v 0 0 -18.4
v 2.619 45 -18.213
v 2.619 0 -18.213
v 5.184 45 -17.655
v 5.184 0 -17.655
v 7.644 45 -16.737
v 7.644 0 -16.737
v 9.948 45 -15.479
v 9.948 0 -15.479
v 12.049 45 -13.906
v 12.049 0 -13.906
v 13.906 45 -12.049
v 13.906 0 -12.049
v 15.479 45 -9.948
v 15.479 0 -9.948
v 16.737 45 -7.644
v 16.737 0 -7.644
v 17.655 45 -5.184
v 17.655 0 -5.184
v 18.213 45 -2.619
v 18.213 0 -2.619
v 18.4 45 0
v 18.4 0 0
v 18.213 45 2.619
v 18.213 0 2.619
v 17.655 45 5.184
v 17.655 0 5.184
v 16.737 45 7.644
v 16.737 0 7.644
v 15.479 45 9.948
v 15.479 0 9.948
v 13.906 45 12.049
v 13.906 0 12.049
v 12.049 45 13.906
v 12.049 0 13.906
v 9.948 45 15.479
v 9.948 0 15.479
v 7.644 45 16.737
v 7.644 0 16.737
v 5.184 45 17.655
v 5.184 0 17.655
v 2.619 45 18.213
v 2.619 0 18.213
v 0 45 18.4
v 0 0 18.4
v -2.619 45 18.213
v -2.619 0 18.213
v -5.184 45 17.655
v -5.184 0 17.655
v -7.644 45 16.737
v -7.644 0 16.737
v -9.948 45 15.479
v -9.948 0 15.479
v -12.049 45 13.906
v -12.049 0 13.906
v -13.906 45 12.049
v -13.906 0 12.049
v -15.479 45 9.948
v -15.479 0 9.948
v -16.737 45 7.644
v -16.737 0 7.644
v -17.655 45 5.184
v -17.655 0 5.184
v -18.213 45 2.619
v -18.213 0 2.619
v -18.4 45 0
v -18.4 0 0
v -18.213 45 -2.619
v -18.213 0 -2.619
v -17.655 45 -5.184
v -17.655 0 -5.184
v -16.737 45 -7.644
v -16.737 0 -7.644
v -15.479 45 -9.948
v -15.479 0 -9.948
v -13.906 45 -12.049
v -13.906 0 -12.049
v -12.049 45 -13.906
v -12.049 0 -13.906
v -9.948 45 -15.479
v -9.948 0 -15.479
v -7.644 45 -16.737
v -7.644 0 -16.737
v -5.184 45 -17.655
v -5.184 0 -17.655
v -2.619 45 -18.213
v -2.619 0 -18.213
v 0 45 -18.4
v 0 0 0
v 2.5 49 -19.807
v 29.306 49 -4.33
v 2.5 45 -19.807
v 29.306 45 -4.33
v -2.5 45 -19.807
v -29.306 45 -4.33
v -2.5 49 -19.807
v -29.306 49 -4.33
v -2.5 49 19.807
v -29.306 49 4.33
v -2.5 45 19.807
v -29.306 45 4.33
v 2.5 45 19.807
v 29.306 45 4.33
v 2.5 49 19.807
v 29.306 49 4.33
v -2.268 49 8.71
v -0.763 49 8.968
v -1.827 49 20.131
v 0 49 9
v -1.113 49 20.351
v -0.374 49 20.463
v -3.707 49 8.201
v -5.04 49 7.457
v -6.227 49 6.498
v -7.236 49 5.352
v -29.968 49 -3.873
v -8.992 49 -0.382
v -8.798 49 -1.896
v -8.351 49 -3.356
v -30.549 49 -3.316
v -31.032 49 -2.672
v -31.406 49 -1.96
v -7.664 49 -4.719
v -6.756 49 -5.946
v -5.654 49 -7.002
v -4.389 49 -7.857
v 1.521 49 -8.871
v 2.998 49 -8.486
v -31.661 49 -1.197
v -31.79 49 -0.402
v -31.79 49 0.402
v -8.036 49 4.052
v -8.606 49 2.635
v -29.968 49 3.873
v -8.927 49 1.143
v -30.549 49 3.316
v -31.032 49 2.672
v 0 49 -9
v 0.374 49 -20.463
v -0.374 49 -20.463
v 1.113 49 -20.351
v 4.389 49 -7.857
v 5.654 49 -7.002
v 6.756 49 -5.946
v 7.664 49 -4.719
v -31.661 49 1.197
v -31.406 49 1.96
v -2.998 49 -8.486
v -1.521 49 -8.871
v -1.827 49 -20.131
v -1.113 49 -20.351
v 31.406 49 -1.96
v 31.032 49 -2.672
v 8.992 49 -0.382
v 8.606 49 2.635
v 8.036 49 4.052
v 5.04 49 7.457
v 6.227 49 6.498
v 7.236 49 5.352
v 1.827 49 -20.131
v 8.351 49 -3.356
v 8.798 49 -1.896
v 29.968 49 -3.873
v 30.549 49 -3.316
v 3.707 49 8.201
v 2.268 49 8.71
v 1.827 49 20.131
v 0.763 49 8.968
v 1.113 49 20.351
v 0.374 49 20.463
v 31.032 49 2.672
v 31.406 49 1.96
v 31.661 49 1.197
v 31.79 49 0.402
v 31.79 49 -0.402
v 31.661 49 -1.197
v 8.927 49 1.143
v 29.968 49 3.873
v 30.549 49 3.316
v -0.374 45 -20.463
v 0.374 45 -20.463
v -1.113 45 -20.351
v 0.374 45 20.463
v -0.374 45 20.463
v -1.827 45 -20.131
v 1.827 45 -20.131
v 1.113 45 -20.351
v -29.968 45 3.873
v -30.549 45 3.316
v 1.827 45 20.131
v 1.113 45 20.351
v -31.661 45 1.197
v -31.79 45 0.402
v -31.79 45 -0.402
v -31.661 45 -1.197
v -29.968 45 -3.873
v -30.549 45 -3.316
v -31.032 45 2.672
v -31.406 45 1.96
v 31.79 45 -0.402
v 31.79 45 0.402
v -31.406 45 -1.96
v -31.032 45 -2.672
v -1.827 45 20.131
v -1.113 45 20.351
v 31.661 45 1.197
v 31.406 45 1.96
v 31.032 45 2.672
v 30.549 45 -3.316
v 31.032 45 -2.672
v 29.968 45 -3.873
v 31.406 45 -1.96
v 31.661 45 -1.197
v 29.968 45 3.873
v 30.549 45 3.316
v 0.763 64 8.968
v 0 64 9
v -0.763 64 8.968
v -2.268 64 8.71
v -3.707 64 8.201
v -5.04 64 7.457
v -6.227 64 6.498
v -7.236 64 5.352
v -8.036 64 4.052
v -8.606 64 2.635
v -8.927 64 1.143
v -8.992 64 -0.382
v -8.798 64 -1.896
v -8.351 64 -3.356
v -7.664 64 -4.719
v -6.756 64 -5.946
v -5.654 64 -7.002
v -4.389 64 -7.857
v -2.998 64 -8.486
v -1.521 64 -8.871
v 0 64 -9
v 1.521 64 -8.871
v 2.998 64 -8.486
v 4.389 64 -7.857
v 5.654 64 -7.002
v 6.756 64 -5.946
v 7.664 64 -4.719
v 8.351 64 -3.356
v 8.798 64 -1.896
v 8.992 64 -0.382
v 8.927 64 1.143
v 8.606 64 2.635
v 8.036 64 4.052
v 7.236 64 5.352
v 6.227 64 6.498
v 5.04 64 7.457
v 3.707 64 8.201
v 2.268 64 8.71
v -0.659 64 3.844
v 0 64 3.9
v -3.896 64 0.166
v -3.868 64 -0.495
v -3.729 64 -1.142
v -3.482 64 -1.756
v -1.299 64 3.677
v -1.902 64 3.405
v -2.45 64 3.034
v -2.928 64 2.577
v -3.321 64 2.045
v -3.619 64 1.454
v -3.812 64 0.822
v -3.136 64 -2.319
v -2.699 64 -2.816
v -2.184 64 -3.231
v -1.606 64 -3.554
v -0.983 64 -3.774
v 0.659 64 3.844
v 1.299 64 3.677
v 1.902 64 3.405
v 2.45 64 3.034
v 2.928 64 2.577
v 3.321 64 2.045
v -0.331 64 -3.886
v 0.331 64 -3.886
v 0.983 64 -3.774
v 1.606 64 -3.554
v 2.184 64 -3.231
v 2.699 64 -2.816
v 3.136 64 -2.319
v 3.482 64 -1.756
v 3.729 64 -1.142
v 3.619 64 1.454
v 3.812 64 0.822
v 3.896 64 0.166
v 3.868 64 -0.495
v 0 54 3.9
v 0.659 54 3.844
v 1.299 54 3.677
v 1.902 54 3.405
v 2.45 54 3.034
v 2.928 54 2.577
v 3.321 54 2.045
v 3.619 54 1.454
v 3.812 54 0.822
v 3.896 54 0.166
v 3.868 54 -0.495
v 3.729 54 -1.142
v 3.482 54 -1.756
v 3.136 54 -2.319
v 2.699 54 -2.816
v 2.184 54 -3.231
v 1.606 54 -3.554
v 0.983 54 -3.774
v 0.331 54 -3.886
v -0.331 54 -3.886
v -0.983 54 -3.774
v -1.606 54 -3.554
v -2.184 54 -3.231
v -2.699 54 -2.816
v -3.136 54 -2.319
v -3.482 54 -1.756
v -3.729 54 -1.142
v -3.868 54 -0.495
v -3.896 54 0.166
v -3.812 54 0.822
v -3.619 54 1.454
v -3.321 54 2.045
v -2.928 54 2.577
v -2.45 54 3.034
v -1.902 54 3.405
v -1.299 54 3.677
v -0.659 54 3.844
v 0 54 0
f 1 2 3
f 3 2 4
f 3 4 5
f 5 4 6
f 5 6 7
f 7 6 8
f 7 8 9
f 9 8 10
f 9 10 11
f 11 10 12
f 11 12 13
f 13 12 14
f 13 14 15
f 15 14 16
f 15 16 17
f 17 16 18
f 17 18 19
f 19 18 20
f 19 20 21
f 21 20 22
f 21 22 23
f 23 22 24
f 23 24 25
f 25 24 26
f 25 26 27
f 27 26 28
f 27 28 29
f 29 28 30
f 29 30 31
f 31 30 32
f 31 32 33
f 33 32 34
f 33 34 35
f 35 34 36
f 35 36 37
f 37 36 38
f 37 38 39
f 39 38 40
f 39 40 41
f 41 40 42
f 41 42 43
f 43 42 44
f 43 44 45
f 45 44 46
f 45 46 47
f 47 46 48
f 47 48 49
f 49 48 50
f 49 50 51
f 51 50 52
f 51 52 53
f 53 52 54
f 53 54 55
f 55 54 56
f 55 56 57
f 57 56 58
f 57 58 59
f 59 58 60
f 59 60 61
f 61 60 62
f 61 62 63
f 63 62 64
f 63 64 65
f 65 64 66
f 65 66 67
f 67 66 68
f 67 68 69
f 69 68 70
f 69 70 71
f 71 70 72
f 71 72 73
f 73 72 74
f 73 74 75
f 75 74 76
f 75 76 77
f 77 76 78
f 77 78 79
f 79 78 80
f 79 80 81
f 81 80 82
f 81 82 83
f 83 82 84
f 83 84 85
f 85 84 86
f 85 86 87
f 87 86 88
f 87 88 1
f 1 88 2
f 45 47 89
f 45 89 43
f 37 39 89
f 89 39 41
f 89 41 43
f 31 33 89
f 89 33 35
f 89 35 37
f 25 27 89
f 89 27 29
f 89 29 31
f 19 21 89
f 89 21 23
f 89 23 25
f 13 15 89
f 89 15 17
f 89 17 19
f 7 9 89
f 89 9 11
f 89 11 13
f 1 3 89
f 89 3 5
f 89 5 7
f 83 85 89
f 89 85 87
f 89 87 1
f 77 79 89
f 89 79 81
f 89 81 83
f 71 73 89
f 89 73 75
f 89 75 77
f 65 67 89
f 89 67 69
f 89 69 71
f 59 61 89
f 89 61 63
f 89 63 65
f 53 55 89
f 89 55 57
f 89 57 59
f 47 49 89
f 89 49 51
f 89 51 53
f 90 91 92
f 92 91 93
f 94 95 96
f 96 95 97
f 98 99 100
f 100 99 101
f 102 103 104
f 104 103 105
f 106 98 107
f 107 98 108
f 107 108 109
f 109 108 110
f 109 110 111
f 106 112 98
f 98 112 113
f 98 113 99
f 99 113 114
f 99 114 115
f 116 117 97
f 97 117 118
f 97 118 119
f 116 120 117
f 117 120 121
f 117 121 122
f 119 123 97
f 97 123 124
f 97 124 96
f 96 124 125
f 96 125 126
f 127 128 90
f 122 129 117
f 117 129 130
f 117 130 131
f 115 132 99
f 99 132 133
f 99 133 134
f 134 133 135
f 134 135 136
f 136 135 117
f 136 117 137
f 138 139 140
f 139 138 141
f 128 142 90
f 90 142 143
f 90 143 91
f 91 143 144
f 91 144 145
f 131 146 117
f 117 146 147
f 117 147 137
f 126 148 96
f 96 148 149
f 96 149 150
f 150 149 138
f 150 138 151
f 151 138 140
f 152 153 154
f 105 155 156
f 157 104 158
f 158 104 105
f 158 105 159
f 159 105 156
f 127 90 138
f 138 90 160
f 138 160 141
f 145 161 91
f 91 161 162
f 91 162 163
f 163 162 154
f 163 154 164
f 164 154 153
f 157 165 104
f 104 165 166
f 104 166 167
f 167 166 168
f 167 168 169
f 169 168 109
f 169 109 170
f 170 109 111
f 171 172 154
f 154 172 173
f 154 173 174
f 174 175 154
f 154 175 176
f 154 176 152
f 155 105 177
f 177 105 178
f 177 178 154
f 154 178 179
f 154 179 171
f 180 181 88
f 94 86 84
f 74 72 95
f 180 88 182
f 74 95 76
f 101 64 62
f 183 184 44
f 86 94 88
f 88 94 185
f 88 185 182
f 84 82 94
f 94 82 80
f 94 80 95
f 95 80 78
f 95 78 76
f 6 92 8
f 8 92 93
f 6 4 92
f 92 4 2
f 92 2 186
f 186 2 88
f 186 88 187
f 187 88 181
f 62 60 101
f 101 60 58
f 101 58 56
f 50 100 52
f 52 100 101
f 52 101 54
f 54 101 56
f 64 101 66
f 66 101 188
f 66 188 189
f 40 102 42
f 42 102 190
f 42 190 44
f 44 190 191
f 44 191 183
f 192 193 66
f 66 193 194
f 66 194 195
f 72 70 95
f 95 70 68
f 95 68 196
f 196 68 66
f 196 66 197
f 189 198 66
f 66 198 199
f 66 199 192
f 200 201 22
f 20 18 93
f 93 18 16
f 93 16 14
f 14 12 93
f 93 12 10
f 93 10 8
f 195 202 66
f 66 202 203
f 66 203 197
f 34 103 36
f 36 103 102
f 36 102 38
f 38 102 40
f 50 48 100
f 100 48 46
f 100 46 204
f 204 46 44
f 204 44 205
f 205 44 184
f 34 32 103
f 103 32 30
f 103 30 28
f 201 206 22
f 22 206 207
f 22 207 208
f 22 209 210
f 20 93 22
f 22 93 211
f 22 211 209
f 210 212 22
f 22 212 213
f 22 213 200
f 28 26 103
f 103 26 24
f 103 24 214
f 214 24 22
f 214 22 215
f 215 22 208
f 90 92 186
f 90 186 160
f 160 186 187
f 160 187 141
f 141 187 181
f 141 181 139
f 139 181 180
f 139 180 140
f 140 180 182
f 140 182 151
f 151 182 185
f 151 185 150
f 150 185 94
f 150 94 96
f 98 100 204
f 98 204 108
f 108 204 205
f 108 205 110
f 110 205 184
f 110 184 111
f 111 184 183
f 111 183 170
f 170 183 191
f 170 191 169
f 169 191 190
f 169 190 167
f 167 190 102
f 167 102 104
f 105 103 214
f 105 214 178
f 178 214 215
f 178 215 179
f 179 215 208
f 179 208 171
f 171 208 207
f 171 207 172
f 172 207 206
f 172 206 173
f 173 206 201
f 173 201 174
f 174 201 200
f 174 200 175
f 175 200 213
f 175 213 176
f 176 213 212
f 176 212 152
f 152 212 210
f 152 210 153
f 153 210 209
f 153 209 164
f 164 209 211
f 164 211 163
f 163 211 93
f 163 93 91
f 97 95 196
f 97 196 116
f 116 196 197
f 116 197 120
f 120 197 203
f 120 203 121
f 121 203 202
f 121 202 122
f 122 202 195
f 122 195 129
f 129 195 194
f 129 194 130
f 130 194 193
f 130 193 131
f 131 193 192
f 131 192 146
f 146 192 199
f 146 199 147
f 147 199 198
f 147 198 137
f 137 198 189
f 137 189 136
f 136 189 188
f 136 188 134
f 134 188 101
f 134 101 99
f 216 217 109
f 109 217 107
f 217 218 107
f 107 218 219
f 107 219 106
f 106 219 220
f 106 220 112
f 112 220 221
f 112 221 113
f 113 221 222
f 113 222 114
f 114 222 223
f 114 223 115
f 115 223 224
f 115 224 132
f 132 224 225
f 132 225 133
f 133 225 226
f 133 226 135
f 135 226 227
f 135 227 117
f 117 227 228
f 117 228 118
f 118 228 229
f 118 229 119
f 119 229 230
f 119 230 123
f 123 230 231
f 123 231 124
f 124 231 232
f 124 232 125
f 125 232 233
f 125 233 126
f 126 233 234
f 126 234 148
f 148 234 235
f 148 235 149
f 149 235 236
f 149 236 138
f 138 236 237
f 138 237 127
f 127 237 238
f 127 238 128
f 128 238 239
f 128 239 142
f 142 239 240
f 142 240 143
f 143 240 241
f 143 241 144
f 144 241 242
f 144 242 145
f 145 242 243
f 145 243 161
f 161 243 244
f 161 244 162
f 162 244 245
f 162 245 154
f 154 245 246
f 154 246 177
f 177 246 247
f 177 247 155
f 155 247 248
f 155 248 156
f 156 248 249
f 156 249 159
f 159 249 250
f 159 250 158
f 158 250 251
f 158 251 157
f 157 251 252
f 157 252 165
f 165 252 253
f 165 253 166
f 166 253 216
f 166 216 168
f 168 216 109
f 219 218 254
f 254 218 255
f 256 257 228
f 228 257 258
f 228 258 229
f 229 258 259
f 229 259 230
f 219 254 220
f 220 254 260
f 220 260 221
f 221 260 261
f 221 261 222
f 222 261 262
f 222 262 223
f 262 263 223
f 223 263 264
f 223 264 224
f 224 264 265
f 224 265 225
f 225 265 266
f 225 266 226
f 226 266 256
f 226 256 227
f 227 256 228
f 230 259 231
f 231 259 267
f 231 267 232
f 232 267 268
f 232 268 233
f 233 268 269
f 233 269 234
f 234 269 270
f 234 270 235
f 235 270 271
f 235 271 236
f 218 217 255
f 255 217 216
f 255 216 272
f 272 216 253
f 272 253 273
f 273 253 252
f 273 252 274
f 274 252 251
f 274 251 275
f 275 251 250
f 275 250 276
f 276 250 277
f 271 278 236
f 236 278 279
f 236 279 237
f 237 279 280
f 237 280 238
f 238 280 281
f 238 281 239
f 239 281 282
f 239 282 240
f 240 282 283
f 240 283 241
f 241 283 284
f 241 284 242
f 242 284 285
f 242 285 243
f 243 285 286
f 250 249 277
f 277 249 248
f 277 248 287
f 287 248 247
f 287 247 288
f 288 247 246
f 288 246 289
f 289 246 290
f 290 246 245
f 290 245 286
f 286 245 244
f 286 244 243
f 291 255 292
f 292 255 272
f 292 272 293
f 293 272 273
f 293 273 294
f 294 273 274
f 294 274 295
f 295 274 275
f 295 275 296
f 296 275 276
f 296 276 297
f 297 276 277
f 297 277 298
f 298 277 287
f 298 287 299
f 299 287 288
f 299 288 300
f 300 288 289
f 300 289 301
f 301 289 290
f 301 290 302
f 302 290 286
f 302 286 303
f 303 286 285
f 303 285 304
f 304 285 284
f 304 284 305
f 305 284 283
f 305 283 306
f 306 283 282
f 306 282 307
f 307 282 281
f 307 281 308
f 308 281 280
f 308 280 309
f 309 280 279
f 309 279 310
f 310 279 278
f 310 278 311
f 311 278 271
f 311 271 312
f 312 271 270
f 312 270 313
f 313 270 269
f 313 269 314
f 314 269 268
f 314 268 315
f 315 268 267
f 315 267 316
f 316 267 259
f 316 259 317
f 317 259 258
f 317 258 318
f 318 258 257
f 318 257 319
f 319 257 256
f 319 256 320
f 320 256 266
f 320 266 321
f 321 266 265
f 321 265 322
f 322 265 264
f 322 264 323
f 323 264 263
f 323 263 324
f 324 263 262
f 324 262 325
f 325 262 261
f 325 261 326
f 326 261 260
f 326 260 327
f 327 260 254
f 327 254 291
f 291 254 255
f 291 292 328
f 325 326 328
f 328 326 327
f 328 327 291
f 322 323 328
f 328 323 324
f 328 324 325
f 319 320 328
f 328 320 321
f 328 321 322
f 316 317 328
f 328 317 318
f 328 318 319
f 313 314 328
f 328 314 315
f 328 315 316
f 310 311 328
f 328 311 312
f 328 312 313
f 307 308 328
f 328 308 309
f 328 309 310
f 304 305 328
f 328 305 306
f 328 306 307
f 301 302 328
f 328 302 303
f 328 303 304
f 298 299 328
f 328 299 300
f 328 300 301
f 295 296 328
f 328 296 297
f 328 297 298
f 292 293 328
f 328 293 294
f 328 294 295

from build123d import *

# Parameters (mm, degrees)
SKETCH1_R           = 18.4
BOSS_EXTRUDE1_DEPTH = 45
BOSS_EXTRUDE2_DEPTH = 4
FILLET1_R           = 5
SKETCH3_R           = 9
BOSS_EXTRUDE3_DEPTH = 15
SKETCH4_R           = 3.9
CUT_EXTRUDE1_DEPTH  = 10


with BuildPart() as part:
    # Sketch1 → Boss-Extrude1 (new body)
    with BuildSketch(Plane(origin=(0, 0, 0), x_dir=(1, 0, 0), z_dir=(0, 1, 0))):
        Circle(SKETCH1_R)
    extrude(amount=BOSS_EXTRUDE1_DEPTH)

    # Sketch2 → Boss-Extrude2 (add)
    with BuildSketch(Plane(origin=(0, 45, 0), x_dir=(1, 0, 0), z_dir=(0, 1, 0))):
        Polygon((0, 21.25), (-36.806079661, 0), (0, -21.25), (36.806079661, 0), align=None)
    extrude(amount=BOSS_EXTRUDE2_DEPTH)

    # Fillet1
    fillet1_edges = [part.edges().sort_by_distance(p)[0] for p in [
        (36.806079661, 47, 0),
        (0, 47, -21.25),
        (-36.806079661, 47, 0),
        (0, 47, 21.25),
    ]]
    fillet(fillet1_edges, radius=FILLET1_R)

    # Sketch3 → Boss-Extrude3 (add)
    with BuildSketch(Plane(origin=(0, 49, 0), x_dir=(1, 0, 0), z_dir=(0, 1, 0))):
        Circle(SKETCH3_R)
    extrude(amount=BOSS_EXTRUDE3_DEPTH)

    # Sketch4 → Cut-Extrude1 (cut)
    with BuildSketch(Plane(origin=(0, 64, 0), x_dir=(1, 0, 0), z_dir=(0, 1, 0))):
        Circle(SKETCH4_R)
    extrude(amount=-CUT_EXTRUDE1_DEPTH, mode=Mode.SUBTRACT)


solid = part.part
